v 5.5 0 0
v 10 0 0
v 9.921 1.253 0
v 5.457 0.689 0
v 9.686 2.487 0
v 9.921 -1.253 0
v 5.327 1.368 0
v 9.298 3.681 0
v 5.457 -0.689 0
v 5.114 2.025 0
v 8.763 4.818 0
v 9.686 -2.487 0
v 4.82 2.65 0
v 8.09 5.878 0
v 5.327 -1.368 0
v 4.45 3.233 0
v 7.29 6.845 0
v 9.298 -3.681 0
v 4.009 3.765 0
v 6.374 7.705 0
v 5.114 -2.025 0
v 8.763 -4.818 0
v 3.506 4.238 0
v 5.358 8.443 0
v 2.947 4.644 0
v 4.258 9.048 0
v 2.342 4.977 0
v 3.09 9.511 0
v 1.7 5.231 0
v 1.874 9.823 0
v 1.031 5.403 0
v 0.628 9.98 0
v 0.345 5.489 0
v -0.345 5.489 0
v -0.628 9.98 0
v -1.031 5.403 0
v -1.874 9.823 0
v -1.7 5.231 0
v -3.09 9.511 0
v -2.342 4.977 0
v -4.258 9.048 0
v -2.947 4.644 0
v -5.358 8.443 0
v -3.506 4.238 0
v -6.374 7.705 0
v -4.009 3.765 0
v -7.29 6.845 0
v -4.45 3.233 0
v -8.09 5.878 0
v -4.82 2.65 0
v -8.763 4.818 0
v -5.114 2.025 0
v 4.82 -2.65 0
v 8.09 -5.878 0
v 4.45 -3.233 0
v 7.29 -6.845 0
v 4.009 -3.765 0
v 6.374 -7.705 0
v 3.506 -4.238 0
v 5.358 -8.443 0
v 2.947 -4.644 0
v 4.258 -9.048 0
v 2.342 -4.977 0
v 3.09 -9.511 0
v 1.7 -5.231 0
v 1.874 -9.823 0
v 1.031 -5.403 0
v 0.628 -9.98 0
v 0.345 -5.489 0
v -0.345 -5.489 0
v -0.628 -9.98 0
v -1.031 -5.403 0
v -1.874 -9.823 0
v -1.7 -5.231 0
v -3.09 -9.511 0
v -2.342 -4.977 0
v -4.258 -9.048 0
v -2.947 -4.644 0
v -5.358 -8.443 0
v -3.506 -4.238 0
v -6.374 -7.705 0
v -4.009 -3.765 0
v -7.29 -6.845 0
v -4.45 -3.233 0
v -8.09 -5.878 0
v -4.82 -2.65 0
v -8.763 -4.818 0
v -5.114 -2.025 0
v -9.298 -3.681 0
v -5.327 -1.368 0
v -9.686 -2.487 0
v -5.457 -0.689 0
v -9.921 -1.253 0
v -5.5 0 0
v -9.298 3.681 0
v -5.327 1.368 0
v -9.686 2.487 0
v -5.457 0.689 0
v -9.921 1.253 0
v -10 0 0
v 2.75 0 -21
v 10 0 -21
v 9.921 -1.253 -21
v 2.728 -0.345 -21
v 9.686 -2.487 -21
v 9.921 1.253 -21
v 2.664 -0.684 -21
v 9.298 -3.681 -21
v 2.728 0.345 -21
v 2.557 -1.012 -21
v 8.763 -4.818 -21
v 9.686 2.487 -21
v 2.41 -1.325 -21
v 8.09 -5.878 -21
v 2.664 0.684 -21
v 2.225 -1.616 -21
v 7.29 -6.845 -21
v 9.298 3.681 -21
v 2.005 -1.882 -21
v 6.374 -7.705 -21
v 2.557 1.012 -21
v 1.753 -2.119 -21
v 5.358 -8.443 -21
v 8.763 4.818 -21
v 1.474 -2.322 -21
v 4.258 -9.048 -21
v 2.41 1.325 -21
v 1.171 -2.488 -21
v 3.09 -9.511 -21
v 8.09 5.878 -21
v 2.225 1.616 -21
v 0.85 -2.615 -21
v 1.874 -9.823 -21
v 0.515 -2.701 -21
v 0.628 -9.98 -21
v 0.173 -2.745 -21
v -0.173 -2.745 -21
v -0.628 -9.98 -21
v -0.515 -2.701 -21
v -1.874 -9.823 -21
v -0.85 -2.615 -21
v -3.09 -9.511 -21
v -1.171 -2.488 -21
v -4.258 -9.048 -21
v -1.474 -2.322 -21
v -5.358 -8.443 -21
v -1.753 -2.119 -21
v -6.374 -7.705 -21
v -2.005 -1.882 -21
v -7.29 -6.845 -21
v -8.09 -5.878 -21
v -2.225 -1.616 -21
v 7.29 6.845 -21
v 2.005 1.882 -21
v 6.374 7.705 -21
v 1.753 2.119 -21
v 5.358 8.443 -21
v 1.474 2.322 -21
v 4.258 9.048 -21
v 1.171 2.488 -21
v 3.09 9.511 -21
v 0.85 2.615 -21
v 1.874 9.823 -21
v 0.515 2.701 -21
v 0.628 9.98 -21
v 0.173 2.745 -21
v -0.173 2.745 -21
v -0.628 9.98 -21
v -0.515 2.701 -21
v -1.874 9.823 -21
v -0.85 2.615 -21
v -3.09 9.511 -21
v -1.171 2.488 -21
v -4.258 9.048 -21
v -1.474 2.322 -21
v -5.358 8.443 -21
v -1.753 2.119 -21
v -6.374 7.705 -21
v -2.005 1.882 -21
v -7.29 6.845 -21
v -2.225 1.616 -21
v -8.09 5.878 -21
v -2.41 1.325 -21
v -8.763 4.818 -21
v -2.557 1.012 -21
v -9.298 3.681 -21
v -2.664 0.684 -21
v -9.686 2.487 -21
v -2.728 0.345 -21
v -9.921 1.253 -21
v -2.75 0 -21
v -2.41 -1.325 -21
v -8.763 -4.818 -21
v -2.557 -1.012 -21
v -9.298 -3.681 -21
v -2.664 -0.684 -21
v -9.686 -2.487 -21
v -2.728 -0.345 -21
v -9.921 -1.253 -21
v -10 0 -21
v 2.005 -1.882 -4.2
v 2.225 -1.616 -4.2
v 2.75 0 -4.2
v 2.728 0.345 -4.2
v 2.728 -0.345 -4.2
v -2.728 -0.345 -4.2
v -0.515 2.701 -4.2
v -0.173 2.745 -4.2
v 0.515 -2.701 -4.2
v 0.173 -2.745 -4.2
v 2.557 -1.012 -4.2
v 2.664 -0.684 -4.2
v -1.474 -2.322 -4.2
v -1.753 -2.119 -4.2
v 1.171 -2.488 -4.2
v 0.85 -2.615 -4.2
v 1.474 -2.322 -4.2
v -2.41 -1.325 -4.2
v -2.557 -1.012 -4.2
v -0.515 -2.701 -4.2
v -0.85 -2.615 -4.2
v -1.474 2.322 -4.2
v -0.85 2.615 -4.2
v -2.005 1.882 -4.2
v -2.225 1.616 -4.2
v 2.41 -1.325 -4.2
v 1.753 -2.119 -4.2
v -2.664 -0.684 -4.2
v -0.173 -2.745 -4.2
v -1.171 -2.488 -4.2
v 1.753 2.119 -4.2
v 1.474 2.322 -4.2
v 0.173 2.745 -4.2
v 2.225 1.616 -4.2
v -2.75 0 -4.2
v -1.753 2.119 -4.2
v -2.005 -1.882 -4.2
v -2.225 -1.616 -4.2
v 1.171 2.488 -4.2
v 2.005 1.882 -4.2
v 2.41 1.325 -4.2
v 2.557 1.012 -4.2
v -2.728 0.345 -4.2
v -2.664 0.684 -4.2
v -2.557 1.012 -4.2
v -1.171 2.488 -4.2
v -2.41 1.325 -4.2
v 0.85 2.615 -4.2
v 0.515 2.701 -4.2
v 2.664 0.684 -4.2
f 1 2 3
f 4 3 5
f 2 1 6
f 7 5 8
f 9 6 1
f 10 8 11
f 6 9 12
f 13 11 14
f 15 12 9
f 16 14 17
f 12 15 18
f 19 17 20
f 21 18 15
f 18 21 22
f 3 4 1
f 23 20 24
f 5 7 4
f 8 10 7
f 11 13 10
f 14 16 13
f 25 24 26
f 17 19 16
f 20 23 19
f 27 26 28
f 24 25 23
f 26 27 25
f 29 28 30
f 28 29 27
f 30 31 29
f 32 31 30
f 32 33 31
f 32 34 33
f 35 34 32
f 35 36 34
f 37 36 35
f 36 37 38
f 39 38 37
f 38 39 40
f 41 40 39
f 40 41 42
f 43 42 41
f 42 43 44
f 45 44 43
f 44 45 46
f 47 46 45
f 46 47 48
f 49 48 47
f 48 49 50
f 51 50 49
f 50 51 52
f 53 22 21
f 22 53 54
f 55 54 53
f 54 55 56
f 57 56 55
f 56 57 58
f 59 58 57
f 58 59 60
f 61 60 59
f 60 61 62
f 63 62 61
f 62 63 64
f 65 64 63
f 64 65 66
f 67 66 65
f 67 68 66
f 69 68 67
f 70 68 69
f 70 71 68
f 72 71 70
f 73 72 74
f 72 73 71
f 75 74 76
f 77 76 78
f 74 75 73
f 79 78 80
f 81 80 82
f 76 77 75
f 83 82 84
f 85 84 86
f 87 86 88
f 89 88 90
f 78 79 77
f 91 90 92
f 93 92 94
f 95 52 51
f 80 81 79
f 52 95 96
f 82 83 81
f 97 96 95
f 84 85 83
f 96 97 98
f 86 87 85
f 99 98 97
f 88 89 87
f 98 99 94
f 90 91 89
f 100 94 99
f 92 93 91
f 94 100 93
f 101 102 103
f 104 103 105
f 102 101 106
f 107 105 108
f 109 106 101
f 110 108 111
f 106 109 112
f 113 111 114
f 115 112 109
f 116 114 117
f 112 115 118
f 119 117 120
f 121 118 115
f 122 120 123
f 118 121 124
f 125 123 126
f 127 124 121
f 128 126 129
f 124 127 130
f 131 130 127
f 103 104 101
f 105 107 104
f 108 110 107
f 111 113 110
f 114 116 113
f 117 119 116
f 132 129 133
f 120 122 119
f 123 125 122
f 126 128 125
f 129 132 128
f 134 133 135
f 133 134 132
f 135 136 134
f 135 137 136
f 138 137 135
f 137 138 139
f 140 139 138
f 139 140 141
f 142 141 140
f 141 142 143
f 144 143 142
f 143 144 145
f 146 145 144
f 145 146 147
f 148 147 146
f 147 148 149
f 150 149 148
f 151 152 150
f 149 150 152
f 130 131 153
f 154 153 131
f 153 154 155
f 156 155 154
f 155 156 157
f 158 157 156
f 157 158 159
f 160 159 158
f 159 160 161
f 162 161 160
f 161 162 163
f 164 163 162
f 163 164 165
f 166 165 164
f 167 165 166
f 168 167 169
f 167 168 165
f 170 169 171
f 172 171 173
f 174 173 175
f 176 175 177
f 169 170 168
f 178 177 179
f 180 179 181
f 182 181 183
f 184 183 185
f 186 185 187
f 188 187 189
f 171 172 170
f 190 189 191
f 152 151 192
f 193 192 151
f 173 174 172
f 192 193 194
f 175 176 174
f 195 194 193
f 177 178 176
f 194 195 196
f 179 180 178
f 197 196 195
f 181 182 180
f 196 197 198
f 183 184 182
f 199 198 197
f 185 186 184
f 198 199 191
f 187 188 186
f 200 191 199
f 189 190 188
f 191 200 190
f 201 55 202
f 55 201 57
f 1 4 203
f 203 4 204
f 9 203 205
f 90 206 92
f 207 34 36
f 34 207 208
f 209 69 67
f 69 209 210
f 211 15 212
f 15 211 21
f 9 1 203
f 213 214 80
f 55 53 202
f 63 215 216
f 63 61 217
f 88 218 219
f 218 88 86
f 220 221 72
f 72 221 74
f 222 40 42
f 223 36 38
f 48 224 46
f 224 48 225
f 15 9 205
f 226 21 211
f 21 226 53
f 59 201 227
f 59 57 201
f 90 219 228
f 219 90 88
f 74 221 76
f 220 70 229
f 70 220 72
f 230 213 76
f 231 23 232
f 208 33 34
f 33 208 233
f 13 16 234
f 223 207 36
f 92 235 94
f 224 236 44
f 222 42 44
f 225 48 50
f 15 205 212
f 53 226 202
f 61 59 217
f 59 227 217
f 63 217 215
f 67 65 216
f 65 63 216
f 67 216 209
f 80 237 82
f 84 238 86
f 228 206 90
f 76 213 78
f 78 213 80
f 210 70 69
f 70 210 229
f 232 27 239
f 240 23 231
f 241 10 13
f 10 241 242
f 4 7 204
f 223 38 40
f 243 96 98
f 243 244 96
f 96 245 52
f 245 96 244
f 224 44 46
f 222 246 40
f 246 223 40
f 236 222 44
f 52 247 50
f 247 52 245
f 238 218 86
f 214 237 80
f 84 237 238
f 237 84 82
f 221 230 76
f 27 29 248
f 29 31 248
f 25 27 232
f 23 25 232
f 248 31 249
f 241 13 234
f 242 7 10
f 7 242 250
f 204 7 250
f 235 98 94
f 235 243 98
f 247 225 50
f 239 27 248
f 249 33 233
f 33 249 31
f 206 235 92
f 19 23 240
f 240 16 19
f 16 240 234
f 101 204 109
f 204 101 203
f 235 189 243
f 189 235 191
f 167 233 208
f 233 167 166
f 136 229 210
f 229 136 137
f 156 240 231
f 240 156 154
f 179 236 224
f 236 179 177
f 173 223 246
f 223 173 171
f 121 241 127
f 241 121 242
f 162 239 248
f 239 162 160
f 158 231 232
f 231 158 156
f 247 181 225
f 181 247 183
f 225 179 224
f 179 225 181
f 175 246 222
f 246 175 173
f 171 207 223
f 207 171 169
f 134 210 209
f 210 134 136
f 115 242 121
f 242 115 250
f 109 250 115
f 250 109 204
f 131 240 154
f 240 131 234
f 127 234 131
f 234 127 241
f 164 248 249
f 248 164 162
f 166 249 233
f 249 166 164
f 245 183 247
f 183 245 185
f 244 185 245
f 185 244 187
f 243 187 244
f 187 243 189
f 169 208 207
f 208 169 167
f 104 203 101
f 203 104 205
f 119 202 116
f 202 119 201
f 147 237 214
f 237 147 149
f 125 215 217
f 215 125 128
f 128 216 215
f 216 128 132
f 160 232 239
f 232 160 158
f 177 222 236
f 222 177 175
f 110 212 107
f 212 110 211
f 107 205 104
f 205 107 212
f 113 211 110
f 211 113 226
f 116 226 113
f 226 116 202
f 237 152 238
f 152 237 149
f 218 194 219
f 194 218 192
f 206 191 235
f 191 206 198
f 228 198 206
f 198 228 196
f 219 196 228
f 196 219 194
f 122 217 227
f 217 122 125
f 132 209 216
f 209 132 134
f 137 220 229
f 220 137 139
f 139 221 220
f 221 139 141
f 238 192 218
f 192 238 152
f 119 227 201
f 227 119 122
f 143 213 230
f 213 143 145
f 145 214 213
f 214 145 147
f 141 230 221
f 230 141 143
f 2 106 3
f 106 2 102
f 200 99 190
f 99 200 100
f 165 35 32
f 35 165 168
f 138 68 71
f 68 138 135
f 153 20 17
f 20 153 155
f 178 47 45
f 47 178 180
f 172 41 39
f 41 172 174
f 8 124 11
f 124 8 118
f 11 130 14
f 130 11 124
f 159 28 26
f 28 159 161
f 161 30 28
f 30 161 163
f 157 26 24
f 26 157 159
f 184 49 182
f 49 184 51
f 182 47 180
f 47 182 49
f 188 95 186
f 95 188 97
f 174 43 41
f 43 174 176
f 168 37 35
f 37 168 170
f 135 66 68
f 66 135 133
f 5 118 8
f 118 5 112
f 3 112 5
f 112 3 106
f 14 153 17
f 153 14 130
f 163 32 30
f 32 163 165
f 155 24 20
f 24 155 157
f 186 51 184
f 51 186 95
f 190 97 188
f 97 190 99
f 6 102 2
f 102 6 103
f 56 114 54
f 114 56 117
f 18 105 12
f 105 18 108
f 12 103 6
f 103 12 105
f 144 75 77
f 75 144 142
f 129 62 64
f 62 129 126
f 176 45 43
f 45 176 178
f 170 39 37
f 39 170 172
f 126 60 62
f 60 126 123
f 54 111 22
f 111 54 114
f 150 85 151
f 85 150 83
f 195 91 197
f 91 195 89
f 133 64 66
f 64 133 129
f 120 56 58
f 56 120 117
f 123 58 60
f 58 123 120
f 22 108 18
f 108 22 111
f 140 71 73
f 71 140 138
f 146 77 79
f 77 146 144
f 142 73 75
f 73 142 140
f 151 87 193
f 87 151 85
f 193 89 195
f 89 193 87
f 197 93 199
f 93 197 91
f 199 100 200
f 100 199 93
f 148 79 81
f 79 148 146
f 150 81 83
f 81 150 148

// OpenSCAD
$fn = 50;


difference() {
	union() {
		translate(v = [0, 0, -21.0000000000]) {
			cylinder(h = 21, r = 10.0000000000);
		}
		cylinder(h = 0, r = 16.0000000000);
	}
	union() {
		translate(v = [0, 0, 0]) {
			rotate(a = [0, 0, 0]) {
				difference() {
					union() {
						#translate(v = [0, 0, -21.0000000000]) {
							cylinder(h = 21, r = 2.2500000000);
						}
						#translate(v = [0, 0, -4.2000000000]) {
							cylinder(h = 4.2000000000, r = 10.0000000000, r1 = 2.7500000000, r2 = 5.5000000000);
						}
						#translate(v = [0, 0, -21.0000000000]) {
							cylinder(h = 21, r = 2.7500000000);
						}
						#translate(v = [0, 0, -21.0000000000]) {
							cylinder(h = 21, r = 2.2500000000);
						}
					}
					union();
				}
			}
		}
	}
}
